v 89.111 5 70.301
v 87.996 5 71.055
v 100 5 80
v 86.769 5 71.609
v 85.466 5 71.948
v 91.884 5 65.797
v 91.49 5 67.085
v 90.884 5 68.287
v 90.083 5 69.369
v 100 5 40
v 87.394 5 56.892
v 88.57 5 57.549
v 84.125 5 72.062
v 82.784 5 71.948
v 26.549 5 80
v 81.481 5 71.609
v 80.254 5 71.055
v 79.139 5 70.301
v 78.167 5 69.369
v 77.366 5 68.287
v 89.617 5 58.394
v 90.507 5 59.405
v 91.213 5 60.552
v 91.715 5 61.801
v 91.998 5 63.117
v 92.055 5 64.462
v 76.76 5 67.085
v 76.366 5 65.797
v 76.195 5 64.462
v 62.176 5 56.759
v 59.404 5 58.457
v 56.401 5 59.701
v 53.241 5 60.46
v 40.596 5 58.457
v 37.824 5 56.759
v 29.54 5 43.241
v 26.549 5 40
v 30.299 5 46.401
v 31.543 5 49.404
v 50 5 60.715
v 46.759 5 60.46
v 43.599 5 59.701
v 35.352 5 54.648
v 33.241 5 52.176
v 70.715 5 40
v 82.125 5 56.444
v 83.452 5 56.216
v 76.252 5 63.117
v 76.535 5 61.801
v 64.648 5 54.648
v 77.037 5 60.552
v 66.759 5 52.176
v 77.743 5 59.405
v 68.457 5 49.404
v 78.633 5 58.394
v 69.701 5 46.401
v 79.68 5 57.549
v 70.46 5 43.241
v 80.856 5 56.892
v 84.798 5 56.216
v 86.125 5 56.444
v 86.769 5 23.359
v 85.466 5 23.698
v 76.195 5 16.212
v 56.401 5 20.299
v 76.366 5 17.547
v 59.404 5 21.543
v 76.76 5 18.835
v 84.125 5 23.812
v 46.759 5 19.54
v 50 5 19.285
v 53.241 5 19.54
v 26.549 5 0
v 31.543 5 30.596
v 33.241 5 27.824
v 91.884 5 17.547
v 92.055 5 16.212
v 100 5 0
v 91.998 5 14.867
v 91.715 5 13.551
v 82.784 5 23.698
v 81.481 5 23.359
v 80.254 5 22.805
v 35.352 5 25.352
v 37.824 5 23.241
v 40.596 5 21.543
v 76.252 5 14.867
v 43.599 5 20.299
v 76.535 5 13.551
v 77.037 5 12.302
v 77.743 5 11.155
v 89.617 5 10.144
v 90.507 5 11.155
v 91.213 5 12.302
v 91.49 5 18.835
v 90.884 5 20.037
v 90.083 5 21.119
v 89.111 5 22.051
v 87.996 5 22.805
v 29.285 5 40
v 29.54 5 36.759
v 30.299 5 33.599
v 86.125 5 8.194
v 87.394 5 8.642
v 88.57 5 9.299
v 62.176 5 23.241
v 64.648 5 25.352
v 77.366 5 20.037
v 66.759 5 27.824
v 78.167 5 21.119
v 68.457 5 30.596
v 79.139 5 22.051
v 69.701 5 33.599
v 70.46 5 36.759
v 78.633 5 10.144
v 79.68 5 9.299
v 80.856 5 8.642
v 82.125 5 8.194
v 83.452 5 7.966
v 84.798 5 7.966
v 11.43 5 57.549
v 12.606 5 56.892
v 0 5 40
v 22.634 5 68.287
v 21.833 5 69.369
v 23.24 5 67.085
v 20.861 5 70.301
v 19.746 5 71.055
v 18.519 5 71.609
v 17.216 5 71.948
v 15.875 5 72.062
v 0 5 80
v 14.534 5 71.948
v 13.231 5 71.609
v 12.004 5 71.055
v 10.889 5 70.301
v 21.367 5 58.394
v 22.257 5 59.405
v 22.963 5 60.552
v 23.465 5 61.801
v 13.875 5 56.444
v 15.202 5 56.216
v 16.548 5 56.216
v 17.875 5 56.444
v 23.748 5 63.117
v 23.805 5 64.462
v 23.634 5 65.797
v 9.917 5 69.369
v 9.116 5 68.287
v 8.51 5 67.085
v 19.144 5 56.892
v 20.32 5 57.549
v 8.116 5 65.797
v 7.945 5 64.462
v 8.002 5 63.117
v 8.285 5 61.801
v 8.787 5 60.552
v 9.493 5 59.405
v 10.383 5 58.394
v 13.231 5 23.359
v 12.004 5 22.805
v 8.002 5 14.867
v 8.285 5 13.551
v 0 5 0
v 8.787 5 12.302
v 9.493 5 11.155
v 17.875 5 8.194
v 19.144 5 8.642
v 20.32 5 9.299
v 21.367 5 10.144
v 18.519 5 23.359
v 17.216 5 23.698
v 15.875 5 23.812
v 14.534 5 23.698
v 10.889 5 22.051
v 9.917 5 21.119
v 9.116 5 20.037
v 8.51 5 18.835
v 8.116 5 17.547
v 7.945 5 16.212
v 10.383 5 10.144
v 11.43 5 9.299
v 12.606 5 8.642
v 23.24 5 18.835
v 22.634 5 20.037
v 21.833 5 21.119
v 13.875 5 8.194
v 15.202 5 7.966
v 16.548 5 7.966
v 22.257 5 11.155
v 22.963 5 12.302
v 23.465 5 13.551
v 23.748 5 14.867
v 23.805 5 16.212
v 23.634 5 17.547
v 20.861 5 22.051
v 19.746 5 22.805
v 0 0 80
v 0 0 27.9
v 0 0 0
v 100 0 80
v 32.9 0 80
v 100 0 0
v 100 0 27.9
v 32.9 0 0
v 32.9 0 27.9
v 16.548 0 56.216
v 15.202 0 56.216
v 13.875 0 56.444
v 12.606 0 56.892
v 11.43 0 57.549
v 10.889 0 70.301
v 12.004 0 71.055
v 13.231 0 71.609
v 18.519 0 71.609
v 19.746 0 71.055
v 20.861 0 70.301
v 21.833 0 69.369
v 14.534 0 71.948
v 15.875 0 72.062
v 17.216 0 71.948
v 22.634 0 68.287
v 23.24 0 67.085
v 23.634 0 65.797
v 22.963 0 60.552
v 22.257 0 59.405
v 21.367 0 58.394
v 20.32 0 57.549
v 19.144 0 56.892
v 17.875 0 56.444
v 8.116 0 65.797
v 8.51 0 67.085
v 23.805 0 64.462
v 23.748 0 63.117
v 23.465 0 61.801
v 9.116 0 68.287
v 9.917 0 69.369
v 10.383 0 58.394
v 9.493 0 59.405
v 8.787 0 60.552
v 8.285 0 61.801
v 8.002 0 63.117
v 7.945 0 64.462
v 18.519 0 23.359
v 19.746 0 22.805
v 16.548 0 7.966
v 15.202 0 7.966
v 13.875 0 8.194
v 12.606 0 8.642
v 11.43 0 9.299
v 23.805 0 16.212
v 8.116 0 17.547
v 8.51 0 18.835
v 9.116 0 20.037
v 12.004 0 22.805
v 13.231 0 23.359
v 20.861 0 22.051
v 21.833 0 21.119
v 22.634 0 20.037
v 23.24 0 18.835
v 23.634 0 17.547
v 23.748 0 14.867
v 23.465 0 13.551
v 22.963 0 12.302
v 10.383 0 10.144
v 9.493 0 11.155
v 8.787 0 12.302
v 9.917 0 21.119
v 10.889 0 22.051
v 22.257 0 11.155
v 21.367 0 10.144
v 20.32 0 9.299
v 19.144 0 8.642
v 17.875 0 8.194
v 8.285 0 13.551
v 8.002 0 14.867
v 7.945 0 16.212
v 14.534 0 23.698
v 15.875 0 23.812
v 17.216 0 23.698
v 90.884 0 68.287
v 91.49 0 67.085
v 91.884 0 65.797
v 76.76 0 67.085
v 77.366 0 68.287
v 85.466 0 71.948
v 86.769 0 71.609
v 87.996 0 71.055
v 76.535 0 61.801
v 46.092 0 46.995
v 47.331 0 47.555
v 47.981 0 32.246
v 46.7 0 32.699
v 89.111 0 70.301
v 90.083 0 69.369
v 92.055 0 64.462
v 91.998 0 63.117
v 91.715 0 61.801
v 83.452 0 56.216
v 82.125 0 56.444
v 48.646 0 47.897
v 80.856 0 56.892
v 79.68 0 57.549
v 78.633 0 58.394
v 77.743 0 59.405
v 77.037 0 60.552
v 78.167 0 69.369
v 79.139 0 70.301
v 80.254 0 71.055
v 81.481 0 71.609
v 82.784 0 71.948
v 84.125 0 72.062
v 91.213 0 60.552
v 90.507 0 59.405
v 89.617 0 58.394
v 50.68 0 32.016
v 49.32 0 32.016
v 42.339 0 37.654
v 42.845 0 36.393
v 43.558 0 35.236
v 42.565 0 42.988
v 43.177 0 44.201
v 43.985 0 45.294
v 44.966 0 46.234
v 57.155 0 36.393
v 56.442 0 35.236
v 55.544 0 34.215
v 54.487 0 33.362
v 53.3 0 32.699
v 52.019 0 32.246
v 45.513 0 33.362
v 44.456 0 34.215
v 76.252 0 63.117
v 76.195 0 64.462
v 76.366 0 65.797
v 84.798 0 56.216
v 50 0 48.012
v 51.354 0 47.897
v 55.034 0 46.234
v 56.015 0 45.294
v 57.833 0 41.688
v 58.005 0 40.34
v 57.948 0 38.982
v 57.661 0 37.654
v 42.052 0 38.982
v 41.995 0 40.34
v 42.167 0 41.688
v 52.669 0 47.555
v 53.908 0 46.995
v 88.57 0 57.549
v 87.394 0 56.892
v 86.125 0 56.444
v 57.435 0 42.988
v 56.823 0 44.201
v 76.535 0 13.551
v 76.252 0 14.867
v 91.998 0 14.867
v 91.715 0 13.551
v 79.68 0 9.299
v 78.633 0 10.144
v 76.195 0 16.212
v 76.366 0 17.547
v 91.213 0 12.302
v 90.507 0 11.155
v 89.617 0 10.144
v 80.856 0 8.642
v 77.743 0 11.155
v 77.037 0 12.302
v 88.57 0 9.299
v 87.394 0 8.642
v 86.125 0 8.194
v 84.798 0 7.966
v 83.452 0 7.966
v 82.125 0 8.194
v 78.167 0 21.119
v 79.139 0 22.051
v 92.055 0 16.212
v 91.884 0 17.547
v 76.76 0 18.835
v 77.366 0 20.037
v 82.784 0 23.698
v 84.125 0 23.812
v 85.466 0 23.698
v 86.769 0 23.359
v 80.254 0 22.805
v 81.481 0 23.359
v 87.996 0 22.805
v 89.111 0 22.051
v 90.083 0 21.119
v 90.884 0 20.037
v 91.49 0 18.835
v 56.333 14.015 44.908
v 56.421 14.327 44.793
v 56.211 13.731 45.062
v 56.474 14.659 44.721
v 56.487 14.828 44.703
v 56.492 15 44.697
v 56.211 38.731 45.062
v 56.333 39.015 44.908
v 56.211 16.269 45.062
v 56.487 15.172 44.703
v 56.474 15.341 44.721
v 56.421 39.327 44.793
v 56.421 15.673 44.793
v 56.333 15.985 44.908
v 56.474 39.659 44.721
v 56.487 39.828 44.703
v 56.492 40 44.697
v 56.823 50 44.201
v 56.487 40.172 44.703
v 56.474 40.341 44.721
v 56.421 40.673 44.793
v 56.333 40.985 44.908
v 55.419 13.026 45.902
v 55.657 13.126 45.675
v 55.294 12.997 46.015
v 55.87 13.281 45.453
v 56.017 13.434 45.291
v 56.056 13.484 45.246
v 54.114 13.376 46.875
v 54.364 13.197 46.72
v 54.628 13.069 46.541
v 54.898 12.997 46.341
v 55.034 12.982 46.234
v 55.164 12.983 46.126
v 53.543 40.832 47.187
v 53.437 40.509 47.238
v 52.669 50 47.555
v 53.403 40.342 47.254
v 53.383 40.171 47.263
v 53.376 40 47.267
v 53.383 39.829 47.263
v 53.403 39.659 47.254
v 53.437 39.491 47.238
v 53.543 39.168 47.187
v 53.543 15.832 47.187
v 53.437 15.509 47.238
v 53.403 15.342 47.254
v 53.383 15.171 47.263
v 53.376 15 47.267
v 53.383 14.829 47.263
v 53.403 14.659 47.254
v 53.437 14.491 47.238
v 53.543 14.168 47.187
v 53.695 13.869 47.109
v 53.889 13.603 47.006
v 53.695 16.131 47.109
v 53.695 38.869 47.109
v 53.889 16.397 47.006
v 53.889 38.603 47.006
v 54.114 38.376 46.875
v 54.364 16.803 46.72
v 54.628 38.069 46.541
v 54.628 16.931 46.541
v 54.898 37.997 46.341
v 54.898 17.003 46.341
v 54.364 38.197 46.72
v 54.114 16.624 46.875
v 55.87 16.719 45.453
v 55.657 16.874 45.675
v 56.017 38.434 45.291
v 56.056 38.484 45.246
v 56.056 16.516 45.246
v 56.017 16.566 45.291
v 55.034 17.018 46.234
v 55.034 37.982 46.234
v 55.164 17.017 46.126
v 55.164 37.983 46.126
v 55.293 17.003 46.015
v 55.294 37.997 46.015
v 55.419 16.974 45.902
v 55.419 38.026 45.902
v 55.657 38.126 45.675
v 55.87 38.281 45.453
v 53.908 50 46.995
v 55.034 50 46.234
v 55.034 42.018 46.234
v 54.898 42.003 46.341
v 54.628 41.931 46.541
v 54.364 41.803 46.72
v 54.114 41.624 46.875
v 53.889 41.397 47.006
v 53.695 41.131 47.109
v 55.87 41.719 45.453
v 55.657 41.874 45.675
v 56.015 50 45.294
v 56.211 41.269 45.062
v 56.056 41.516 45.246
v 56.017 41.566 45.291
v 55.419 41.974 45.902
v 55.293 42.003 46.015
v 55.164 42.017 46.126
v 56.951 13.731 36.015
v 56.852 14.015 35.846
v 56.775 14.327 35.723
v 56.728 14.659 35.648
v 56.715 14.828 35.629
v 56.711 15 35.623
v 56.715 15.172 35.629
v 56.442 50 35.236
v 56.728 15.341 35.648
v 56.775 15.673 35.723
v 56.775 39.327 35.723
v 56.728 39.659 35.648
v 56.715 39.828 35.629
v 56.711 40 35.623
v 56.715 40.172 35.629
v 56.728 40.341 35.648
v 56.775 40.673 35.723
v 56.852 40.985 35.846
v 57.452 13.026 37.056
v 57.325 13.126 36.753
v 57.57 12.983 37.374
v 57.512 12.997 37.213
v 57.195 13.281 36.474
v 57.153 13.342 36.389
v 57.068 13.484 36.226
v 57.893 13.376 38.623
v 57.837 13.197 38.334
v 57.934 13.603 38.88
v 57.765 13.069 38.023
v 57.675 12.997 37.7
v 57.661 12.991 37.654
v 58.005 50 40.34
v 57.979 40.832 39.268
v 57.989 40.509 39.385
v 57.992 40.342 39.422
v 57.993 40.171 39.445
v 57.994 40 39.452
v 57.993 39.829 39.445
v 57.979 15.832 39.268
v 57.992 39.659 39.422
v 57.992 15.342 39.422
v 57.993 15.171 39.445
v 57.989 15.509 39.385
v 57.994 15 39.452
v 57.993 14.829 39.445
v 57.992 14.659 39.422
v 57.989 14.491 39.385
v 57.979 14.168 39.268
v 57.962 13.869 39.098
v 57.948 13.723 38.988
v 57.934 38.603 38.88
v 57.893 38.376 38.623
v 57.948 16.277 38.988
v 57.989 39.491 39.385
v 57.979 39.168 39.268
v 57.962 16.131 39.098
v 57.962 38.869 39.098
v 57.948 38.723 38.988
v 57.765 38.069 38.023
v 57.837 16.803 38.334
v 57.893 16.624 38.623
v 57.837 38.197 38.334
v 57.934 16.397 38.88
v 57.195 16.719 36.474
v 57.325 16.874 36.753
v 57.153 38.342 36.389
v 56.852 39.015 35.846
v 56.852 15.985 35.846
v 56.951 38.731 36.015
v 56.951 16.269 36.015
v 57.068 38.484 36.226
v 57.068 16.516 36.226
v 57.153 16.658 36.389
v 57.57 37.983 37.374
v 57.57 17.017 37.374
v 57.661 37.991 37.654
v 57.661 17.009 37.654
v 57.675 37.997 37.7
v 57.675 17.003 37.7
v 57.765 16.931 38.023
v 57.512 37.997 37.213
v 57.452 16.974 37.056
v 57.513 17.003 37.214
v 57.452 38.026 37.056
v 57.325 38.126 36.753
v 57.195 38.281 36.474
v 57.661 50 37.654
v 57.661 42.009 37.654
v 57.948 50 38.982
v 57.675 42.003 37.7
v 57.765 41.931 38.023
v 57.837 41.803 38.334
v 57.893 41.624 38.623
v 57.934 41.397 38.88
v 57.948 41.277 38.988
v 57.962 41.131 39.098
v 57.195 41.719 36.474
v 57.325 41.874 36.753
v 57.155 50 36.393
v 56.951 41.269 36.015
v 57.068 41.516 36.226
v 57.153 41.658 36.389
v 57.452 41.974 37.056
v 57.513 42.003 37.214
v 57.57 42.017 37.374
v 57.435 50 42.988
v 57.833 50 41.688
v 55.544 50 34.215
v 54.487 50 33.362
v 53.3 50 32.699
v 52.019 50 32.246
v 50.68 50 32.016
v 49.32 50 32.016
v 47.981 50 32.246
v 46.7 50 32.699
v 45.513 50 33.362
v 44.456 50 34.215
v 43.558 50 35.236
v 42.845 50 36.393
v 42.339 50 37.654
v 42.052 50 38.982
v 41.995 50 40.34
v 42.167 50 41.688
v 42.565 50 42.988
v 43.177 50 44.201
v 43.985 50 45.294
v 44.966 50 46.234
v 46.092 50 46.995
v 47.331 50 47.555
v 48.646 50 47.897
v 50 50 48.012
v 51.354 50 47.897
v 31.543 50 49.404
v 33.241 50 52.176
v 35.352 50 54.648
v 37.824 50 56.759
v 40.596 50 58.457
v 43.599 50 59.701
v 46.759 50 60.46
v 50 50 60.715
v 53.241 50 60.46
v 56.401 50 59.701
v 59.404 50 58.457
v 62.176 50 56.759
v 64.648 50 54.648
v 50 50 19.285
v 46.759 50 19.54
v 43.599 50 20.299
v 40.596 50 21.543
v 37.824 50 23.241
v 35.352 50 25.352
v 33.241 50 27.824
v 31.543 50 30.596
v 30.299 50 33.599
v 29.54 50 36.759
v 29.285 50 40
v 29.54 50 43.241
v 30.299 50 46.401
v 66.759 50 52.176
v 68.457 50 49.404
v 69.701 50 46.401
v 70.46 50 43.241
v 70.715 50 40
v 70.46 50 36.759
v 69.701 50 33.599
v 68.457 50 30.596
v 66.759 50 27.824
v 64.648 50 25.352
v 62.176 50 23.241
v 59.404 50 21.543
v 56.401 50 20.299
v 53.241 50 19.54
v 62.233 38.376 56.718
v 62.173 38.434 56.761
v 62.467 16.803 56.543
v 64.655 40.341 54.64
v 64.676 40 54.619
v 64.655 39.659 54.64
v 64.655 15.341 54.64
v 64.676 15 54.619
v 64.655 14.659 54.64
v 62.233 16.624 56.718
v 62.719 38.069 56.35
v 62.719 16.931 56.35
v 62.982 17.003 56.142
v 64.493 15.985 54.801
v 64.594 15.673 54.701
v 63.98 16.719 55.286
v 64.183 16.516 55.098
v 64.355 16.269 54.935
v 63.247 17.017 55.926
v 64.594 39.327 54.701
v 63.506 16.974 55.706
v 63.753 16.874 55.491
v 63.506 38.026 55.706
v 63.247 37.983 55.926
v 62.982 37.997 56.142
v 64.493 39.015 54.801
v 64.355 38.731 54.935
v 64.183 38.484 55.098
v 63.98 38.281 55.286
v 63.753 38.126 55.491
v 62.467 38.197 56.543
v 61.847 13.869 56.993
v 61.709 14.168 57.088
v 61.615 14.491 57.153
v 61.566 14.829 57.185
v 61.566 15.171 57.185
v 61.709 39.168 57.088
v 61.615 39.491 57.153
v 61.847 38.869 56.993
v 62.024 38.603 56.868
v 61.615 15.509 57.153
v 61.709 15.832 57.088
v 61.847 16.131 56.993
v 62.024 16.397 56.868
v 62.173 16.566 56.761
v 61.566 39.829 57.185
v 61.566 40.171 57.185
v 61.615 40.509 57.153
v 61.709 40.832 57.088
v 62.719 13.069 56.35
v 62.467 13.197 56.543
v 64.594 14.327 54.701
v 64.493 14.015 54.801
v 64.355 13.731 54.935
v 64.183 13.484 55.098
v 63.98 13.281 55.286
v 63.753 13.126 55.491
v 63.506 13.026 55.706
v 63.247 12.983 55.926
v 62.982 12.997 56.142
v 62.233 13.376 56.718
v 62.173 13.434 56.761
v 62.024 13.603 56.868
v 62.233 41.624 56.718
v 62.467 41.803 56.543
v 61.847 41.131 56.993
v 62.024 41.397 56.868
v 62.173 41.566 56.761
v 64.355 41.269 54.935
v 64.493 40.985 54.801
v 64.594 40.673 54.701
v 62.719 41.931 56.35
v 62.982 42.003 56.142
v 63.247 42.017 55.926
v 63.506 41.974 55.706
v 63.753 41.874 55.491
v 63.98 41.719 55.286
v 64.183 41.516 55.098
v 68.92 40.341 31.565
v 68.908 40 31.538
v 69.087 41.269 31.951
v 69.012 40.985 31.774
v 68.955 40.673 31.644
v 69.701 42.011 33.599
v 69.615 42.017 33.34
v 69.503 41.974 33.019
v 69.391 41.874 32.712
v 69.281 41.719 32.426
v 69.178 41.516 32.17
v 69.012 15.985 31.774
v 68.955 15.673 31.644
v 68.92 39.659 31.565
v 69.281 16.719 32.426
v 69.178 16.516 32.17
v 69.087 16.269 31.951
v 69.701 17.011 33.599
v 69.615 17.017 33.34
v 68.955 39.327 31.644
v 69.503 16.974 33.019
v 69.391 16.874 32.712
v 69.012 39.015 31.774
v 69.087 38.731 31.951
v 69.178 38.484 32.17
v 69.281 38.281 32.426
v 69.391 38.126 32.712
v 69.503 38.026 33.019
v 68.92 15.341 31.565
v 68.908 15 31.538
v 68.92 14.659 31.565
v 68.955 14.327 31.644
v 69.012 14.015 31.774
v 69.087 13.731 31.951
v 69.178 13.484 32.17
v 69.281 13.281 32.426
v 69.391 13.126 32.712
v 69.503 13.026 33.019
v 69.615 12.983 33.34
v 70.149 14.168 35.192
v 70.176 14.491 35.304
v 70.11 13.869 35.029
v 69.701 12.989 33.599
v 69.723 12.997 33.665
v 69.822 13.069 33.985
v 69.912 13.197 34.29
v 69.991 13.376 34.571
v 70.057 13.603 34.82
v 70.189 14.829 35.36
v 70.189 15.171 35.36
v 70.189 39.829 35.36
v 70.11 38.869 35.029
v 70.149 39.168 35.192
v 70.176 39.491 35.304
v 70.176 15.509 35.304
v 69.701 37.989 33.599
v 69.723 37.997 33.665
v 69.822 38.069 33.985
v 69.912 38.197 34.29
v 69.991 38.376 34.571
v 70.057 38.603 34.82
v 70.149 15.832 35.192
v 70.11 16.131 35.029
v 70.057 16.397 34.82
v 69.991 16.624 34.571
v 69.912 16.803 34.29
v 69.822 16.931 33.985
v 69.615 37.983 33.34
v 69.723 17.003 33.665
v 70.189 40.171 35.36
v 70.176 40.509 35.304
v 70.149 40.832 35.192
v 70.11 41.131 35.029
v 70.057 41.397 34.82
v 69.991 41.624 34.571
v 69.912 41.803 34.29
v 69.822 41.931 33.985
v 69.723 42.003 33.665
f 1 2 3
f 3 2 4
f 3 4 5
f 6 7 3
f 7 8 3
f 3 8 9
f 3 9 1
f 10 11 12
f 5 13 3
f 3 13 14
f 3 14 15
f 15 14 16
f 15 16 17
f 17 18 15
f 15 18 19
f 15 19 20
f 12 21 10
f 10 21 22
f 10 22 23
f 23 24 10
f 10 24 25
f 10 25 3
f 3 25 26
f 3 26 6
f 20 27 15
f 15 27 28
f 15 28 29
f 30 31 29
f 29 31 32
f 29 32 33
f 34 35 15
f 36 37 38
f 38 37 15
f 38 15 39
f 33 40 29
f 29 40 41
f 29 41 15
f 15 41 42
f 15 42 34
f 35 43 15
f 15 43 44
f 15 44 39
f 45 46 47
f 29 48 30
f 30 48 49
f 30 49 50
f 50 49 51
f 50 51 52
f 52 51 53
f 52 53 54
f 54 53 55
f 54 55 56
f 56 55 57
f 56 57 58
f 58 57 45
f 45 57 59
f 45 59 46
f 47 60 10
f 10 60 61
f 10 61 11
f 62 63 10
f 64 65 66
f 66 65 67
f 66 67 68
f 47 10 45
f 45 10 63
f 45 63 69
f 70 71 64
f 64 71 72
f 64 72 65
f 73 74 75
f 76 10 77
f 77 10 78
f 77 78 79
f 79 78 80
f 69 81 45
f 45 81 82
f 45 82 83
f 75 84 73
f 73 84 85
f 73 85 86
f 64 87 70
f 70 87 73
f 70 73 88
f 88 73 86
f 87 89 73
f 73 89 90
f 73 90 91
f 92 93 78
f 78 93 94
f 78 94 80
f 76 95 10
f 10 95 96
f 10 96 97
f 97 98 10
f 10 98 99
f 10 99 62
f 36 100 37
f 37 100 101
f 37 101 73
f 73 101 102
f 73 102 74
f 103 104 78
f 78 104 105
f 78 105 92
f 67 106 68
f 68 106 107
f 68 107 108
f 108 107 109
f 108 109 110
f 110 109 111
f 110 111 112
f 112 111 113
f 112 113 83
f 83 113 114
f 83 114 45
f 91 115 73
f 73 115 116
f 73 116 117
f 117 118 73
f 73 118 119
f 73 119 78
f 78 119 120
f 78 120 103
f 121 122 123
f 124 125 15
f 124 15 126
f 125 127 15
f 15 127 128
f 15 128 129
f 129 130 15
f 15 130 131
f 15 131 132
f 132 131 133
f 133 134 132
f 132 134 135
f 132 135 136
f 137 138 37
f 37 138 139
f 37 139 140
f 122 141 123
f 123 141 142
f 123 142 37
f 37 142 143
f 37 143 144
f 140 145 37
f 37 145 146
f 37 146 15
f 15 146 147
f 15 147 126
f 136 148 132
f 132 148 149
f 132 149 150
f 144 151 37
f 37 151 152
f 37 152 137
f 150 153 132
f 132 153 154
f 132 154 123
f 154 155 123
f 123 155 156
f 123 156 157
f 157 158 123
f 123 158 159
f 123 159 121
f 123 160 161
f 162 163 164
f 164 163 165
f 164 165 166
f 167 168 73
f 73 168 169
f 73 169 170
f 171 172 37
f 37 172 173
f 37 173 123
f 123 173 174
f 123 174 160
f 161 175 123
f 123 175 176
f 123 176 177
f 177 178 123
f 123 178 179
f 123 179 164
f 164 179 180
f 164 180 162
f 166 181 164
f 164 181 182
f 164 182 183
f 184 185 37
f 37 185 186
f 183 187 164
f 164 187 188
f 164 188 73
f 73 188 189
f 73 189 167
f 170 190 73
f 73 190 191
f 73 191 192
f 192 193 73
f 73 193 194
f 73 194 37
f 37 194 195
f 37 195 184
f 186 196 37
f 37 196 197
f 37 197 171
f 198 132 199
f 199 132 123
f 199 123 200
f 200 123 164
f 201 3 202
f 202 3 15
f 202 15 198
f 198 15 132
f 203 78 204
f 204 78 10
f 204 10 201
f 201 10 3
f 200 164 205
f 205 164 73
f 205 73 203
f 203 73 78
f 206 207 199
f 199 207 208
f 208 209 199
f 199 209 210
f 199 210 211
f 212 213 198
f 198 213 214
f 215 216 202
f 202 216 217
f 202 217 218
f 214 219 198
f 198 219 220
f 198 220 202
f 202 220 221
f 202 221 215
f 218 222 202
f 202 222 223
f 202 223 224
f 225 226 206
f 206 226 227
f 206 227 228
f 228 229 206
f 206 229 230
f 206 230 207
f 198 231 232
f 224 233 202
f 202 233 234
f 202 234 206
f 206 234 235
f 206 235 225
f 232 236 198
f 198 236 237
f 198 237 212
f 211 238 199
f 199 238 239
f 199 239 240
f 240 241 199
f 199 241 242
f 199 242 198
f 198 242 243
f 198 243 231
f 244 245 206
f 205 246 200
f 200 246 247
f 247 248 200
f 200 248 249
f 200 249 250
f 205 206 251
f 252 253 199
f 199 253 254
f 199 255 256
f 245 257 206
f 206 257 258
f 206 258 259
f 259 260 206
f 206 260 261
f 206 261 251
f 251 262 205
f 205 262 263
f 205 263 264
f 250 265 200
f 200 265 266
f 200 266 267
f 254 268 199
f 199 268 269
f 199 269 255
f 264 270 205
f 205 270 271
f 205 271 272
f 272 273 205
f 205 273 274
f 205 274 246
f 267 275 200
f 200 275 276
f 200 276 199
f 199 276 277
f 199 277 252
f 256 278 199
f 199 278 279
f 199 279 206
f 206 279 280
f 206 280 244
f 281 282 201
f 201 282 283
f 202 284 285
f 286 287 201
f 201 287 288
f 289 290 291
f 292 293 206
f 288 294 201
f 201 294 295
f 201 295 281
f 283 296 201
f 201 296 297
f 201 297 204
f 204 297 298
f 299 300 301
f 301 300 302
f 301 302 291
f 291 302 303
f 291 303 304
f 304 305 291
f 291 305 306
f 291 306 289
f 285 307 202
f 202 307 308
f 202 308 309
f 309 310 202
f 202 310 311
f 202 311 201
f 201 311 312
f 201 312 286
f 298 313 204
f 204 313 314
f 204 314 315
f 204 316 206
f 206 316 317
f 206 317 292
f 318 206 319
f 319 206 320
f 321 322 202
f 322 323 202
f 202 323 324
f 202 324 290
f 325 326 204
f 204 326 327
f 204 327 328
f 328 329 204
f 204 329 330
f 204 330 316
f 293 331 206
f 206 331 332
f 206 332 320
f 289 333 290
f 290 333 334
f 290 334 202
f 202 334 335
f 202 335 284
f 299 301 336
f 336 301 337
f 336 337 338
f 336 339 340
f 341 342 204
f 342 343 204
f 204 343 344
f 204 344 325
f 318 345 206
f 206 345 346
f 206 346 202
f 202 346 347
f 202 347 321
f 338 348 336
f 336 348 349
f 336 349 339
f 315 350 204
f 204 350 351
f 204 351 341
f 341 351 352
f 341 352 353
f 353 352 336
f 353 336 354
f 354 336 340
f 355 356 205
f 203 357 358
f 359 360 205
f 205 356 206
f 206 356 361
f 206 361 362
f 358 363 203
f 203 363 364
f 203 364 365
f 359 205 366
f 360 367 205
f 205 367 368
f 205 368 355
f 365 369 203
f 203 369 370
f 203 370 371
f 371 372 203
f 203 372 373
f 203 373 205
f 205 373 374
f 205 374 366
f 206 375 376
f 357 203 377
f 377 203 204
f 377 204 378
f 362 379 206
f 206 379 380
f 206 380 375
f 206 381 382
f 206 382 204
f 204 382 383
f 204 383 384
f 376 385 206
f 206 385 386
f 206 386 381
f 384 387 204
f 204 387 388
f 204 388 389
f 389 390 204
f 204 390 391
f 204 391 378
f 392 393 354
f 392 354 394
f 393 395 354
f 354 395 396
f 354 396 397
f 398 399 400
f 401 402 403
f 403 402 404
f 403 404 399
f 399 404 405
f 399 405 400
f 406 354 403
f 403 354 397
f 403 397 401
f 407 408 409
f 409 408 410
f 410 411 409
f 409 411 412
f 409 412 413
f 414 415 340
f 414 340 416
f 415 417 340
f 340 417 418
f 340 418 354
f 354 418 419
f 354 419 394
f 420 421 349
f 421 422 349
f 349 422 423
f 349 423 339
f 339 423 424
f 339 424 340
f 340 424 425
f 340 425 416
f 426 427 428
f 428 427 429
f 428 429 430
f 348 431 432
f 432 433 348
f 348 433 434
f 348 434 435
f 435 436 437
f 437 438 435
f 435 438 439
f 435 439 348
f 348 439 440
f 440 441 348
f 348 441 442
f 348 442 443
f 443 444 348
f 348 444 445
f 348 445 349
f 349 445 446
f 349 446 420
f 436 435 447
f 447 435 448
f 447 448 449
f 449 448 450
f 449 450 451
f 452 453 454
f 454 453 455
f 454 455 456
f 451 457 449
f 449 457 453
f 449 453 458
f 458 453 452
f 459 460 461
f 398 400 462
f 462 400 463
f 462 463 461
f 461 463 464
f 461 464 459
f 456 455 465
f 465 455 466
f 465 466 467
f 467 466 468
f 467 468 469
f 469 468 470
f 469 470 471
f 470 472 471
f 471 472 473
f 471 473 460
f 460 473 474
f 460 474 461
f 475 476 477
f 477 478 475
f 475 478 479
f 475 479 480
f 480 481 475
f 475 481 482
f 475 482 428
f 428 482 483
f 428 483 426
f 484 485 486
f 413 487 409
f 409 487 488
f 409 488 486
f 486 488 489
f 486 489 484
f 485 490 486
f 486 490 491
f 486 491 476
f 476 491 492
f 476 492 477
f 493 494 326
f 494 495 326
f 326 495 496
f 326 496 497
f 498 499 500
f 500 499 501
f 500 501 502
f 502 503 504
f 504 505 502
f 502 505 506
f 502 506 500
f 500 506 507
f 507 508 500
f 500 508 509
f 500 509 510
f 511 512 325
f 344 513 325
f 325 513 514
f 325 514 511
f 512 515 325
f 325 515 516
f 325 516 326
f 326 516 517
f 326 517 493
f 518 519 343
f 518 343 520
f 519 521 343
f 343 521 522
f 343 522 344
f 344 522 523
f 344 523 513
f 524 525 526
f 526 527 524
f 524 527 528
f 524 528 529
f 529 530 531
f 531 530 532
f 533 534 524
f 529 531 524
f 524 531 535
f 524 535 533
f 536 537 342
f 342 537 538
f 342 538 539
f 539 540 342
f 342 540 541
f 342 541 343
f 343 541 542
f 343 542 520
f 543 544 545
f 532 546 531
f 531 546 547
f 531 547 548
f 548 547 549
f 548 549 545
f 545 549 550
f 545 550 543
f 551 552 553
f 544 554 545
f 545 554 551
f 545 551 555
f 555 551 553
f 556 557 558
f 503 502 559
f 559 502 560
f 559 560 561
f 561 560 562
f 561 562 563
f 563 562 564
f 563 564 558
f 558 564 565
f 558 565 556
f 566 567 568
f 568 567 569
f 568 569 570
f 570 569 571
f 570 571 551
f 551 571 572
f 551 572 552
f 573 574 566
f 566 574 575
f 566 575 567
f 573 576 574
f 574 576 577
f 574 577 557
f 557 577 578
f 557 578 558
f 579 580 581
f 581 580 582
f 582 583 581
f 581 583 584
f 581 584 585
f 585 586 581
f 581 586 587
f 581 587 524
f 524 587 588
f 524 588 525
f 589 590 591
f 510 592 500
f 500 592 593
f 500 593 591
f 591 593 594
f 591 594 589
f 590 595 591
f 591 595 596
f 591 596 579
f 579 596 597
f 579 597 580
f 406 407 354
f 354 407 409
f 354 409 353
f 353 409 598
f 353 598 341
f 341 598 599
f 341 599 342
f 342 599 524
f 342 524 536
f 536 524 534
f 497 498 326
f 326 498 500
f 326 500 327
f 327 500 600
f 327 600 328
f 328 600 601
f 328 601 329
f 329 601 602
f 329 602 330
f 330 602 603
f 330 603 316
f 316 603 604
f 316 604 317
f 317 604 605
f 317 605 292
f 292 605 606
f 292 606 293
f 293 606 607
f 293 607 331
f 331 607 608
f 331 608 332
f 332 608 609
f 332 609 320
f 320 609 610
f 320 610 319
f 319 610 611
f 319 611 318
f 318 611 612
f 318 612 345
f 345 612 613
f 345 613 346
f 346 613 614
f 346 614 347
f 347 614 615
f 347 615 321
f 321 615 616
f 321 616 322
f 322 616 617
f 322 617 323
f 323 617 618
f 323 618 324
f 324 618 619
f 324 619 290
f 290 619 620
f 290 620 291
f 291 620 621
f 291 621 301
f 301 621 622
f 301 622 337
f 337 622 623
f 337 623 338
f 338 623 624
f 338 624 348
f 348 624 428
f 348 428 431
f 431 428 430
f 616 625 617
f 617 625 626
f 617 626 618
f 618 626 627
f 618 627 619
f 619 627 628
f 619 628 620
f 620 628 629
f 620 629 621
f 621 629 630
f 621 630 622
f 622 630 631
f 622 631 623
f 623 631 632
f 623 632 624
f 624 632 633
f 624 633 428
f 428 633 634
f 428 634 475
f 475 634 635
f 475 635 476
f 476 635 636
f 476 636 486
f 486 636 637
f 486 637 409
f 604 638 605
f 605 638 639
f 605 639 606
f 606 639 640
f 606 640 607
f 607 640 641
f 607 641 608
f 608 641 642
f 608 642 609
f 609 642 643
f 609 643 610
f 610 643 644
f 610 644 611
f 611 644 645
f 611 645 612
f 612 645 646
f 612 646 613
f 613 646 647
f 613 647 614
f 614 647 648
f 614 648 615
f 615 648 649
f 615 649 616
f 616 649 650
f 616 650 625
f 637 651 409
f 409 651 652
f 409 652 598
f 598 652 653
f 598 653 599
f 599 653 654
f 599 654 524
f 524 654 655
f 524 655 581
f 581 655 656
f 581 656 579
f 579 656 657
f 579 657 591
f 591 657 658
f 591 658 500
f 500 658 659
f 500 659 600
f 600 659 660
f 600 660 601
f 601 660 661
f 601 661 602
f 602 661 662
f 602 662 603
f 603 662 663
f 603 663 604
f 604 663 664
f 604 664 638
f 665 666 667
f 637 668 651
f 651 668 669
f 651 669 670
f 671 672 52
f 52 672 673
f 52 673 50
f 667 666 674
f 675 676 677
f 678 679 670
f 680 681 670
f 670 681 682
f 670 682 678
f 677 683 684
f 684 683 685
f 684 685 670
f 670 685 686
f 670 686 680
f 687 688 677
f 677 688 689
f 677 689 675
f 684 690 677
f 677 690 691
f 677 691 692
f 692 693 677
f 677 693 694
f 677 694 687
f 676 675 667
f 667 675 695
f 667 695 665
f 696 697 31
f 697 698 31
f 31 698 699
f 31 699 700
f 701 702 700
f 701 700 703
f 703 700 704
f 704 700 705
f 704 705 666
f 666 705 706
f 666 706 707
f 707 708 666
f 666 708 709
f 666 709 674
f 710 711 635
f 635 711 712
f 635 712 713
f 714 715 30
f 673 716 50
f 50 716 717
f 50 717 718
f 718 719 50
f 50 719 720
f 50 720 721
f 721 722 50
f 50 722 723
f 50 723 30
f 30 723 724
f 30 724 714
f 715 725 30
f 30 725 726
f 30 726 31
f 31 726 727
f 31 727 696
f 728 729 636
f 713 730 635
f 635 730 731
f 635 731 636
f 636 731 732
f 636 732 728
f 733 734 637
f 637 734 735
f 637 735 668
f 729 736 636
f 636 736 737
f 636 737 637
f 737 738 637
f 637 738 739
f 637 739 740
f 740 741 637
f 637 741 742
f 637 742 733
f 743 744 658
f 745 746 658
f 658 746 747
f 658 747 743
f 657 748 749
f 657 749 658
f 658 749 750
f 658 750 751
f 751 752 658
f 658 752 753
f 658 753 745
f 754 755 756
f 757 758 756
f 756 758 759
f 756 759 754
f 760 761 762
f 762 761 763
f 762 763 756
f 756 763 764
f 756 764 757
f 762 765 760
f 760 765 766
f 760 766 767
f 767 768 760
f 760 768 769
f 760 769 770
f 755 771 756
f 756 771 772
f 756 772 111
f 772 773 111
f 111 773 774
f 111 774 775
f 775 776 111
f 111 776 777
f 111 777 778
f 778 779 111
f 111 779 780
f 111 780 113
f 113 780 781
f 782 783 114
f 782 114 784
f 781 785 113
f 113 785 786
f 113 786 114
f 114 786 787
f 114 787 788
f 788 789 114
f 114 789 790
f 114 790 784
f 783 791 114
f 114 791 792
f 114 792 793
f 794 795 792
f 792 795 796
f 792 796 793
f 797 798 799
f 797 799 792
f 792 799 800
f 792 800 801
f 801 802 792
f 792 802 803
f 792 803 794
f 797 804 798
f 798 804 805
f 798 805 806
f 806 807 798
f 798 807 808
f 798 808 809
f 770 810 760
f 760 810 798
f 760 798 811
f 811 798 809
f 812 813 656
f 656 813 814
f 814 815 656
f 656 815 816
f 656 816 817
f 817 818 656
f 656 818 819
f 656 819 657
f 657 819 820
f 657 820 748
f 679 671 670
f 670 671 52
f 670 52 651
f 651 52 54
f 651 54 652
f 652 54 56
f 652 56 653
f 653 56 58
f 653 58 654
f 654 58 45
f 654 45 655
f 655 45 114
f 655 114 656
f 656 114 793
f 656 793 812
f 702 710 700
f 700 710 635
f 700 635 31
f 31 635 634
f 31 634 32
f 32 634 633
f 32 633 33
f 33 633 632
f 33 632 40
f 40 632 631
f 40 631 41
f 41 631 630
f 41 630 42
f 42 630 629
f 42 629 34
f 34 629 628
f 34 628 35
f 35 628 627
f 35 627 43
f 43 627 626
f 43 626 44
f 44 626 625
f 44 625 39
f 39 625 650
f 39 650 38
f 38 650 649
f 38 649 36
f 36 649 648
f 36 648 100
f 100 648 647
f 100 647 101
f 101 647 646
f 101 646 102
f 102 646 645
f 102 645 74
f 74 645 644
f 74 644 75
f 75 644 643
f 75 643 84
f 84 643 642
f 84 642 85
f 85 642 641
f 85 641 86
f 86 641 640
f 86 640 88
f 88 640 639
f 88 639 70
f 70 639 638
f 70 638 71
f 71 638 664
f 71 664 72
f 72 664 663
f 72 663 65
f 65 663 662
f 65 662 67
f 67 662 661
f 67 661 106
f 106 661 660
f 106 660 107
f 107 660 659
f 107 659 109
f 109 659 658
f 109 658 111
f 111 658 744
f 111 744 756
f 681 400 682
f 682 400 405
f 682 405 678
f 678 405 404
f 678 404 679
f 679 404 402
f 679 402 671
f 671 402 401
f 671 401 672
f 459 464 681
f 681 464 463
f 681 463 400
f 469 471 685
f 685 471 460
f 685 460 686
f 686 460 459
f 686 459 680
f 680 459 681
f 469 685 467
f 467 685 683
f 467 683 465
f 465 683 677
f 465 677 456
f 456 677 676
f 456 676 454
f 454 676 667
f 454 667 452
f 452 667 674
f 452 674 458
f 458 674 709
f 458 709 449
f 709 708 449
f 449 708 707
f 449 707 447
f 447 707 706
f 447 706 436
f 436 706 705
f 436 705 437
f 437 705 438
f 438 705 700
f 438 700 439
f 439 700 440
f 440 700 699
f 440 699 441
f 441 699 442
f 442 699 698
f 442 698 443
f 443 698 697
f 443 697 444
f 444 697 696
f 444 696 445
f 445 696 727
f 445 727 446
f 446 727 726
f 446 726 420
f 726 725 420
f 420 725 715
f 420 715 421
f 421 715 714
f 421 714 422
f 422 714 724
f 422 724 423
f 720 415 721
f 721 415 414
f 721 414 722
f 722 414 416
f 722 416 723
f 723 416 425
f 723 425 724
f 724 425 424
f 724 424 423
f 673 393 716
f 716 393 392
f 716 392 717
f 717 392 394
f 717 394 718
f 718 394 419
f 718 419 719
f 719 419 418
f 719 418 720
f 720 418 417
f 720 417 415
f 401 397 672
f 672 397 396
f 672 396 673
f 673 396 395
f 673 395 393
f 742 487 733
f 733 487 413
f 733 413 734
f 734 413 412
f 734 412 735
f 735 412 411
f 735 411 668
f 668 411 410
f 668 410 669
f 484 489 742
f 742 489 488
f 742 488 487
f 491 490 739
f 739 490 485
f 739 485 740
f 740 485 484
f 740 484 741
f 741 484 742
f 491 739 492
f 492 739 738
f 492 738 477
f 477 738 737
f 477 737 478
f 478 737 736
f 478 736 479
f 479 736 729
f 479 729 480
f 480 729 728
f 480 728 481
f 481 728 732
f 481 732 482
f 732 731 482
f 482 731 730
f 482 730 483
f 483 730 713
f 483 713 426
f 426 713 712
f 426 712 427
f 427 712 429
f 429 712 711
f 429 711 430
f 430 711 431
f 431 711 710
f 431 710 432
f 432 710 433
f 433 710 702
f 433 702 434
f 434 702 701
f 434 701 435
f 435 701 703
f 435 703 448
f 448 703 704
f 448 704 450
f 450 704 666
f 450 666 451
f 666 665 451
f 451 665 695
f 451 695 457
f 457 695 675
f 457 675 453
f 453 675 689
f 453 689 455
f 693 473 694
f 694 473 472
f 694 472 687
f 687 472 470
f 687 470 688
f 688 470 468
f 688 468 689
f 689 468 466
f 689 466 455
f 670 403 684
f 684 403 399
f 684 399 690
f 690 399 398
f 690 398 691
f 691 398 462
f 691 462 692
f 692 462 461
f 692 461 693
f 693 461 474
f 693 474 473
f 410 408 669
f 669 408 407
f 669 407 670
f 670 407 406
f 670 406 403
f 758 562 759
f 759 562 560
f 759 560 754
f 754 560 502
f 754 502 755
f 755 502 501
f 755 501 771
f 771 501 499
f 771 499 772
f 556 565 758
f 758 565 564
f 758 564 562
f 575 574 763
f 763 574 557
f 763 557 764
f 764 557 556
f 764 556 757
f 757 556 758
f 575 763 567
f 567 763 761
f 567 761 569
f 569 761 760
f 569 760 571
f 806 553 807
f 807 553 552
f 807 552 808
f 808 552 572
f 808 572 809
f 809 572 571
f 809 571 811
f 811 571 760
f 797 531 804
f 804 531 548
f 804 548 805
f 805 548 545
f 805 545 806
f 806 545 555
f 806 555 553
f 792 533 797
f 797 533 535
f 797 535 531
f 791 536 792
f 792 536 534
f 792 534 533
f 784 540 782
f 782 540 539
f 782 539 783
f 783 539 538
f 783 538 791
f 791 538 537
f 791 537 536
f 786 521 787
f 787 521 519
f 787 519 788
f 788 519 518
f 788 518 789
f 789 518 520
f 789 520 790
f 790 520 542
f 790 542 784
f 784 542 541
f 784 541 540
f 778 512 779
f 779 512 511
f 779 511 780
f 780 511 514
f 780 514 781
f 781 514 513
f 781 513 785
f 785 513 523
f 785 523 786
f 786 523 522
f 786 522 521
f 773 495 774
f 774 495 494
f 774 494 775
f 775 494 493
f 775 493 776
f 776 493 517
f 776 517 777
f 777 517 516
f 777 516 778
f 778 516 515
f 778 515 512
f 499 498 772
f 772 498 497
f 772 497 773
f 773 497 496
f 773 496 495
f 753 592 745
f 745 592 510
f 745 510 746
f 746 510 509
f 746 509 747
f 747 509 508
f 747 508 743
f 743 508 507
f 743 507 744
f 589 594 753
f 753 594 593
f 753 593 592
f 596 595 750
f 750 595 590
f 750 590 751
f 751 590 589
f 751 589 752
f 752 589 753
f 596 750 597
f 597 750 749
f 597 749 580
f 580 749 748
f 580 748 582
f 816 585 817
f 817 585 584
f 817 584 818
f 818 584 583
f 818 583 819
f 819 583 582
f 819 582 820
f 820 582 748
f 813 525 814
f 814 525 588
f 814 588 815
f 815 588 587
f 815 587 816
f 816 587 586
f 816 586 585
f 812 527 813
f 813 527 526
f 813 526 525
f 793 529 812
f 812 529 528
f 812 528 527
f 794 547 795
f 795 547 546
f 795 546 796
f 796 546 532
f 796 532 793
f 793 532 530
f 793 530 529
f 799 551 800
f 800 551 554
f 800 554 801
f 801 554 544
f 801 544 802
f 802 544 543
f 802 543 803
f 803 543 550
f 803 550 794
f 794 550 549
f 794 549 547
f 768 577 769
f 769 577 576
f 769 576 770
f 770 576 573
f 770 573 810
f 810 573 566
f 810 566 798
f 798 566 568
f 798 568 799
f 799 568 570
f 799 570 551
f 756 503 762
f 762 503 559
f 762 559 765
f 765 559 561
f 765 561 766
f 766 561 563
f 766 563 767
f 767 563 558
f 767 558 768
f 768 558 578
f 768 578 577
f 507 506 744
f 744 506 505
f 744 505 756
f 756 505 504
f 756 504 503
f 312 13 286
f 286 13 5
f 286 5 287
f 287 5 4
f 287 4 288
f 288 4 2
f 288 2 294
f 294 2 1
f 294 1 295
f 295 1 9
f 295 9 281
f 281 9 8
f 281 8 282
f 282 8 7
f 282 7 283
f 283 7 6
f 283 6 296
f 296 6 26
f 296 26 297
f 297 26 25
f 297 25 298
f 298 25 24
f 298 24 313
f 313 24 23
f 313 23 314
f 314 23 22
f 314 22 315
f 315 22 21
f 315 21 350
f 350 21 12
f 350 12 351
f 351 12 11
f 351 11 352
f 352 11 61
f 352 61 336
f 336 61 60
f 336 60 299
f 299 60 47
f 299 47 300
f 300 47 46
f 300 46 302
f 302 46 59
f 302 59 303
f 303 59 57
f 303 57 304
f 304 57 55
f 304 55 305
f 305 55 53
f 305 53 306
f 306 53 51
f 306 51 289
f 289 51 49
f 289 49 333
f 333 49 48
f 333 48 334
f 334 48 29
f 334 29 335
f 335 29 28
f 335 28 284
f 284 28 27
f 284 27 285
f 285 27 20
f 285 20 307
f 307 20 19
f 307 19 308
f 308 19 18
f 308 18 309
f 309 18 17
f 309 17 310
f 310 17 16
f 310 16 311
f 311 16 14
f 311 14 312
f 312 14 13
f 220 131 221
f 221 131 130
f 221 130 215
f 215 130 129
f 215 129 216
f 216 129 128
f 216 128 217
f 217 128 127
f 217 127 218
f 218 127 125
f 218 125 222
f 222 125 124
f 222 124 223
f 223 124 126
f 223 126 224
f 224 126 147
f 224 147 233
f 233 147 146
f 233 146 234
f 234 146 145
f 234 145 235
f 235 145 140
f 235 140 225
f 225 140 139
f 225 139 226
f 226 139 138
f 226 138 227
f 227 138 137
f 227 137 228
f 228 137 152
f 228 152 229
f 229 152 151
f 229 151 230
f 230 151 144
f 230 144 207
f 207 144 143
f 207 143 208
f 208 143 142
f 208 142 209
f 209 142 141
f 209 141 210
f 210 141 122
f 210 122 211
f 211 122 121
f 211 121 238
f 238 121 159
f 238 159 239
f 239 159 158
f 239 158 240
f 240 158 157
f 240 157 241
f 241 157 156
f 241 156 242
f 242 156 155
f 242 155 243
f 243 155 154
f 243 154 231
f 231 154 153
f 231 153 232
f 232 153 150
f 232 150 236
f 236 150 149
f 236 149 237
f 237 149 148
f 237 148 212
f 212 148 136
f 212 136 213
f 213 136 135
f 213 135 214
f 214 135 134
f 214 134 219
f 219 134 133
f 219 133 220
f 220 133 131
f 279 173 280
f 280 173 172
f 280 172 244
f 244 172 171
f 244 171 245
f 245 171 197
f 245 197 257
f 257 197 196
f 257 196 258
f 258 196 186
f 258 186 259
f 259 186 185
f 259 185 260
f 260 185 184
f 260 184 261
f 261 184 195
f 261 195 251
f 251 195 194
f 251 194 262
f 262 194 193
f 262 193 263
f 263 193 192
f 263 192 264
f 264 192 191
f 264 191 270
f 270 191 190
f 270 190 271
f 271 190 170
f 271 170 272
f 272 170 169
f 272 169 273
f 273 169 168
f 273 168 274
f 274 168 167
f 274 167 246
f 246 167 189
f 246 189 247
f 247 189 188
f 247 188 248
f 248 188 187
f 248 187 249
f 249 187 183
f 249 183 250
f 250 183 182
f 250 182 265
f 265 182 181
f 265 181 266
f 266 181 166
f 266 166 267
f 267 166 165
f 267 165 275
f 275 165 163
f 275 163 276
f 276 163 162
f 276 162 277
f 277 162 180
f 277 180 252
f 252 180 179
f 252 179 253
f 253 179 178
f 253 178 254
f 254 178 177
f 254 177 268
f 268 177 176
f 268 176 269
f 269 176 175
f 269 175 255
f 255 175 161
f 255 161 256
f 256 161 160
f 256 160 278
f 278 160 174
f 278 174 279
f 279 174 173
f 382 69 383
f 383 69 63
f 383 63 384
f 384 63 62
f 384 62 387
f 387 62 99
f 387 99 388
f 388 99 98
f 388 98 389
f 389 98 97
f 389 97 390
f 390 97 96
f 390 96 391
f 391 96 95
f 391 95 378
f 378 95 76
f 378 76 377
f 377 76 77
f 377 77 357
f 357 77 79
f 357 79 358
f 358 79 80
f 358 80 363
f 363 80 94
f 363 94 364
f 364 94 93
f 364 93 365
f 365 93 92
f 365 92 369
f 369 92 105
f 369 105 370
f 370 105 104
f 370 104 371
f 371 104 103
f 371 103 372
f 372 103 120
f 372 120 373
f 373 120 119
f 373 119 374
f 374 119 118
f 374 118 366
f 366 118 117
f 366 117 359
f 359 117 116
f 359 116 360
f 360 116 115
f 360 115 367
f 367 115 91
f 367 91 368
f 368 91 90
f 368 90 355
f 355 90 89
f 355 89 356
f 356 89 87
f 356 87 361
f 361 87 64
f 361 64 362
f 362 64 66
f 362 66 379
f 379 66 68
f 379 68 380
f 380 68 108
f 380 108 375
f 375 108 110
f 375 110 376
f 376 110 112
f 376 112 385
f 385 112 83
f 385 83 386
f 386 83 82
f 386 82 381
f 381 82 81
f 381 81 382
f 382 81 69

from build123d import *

# Parameters (mm, degrees)
SKETCH1_W           = 100
SKETCH1_H           = 80
BOSS_EXTRUDE1_DEPTH = 5
SKETCH2_R           = 8.0125
CUT_EXTRUDE1_DEPTH  = 129.16005618
BOSS_EXTRUDE2_START = 45
SKETCH3_R           = 20.715
SKETCH3_R_2         = 8.0125
BOSS_EXTRUDE2_DEPTH = 45
SKETCH4_R           = 2.0193
CUT_EXTRUDE2_DEPTH  = 15
SKETCH6_R           = 2.0193
CUT_EXTRUDE3_DEPTH  = 15
SKETCH7_R           = 7.9375
CUT_EXTRUDE4_DEPTH  = 136.738719638


with BuildPart() as part:
    # Sketch1 → Boss-Extrude1 (new body)
    with BuildSketch(Plane(origin=(0, 0, 0), x_dir=(1, 0, 0), z_dir=(0, 1, 0))):
        with Locations((50, -40)):
            Rectangle(SKETCH1_W, SKETCH1_H)
    extrude(amount=BOSS_EXTRUDE1_DEPTH)

    # Sketch2 → Cut-Extrude1 (cut, through all)
    with BuildSketch(Plane(origin=(0, 5, 0), x_dir=(1, 0, 0), z_dir=(0, 1, 0))):
        with Locations((50, -40)):
            Circle(SKETCH2_R)
    extrude(amount=-CUT_EXTRUDE1_DEPTH, mode=Mode.SUBTRACT)

    # Sketch3 → Boss-Extrude2 (add)
    with BuildSketch(Plane(origin=(0, 5, 0), x_dir=(1, 0, 0), z_dir=(0, 1, 0)).offset(BOSS_EXTRUDE2_START)):
        with Locations((50, -40)):
            Circle(SKETCH3_R)
        with Locations((50, -40)):
            Circle(SKETCH3_R_2, mode=Mode.SUBTRACT)
    extrude(amount=-BOSS_EXTRUDE2_DEPTH)

    # Sketch4 → Cut-Extrude2 (cut)
    with BuildSketch(Plane(origin=(63.180969698, 50, 55.980402461), x_dir=(0.7714411036002745, 0, -0.6363007336755088), z_dir=(0.6363007336755088, 0, 0.7714411036002745))):
        with Locations((0, -10)):
            Circle(SKETCH4_R)
        with Locations((0, -35)):
            Circle(SKETCH4_R)
    extrude(amount=-CUT_EXTRUDE2_DEPTH, mode=Mode.SUBTRACT)

    # Sketch6 → Cut-Extrude3 (cut)
    with BuildSketch(Plane(origin=(52.5543225, 0, -17.601285723), x_dir=(0, -1, 0), z_dir=(0.9482321037380778, 0, -0.3175781438330723))):
        with Locations((-40, -53.808191341)):
            Circle(SKETCH6_R)
        with Locations((-15, -53.808191341)):
            Circle(SKETCH6_R)
    extrude(amount=-CUT_EXTRUDE3_DEPTH, mode=Mode.SUBTRACT)

    # Sketch7 → Cut-Extrude4 (cut, through all)
    with BuildSketch(Plane(origin=(0, 5, 0), x_dir=(1, 0, 0), z_dir=(0, 1, 0))):
        with Locations((84.125, -64.125)):
            Circle(SKETCH7_R)
        with Locations((15.875, -64.125)):
            Circle(SKETCH7_R)
        with Locations((15.875, -15.875)):
            Circle(SKETCH7_R)
        with Locations((84.125, -15.875)):
            Circle(SKETCH7_R)
    extrude(amount=-CUT_EXTRUDE4_DEPTH, mode=Mode.SUBTRACT)


solid = part.part
